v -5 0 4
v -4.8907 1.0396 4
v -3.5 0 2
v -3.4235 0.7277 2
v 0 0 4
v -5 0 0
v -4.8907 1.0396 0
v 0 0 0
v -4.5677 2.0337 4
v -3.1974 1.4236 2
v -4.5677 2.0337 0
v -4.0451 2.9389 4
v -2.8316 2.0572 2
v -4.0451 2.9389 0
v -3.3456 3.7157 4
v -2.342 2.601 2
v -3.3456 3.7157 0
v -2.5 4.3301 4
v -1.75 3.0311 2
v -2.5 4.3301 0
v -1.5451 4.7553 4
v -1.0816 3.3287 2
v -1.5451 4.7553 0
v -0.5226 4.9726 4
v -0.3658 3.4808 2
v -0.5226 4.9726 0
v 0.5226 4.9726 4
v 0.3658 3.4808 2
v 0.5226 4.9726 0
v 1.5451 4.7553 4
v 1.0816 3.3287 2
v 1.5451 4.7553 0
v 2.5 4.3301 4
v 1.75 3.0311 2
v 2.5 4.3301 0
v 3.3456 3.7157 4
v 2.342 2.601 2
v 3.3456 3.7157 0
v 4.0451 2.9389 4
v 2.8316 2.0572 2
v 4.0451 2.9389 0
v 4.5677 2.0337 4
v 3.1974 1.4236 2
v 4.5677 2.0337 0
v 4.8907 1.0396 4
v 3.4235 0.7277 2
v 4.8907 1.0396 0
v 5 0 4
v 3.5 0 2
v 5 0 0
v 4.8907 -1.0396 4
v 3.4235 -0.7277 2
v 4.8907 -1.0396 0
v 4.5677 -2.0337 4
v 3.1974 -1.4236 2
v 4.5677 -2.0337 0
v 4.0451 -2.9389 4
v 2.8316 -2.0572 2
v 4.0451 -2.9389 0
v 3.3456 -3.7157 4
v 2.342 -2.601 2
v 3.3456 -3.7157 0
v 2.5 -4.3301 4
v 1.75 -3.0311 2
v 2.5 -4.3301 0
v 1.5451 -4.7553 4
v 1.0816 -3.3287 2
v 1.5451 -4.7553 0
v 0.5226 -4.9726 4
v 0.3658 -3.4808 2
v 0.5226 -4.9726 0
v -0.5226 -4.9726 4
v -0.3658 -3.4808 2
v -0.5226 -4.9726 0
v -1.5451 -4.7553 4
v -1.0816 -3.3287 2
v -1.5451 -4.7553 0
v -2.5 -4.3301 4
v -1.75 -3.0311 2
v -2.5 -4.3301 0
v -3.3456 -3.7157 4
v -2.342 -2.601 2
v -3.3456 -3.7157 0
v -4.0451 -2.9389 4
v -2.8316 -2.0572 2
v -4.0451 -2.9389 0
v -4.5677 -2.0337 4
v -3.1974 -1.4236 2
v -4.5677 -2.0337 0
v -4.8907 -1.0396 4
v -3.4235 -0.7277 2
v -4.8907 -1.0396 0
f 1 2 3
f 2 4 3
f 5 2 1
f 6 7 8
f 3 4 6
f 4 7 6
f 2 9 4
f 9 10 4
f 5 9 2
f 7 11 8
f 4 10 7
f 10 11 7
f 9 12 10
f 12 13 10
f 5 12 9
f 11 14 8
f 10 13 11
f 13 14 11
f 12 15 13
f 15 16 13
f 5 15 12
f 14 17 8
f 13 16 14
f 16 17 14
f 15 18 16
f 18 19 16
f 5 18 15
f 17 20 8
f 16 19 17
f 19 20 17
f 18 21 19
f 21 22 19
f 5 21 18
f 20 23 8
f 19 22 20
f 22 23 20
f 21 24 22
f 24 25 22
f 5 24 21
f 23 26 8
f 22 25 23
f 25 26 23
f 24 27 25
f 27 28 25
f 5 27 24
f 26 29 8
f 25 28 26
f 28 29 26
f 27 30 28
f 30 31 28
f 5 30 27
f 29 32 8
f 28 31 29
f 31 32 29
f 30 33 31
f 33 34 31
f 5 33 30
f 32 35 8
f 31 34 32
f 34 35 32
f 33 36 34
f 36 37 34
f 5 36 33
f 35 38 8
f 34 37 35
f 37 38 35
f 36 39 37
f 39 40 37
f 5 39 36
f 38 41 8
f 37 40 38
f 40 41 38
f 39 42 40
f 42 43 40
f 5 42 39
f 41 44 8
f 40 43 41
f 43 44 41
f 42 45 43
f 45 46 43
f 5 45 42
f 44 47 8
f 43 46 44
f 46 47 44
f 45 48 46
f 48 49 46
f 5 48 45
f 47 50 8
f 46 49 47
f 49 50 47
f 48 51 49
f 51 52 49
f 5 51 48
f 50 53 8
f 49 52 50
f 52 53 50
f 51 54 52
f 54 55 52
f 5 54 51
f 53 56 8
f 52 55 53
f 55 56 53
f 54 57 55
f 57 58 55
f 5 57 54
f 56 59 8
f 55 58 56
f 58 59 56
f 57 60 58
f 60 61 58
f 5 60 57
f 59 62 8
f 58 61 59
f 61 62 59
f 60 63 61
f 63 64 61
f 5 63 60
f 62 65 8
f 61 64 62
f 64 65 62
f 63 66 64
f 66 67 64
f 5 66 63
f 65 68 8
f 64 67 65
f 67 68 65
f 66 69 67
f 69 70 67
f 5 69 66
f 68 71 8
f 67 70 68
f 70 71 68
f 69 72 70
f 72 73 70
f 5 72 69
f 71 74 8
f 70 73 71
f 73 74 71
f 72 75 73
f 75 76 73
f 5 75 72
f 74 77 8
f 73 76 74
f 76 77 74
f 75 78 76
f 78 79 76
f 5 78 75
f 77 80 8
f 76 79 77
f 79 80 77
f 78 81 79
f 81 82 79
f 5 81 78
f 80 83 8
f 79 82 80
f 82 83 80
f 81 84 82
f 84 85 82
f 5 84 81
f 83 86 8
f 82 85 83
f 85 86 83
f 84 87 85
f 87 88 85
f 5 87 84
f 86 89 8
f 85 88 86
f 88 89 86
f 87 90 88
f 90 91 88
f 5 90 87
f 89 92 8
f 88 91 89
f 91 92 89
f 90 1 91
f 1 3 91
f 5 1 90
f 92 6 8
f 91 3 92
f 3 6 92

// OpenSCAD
or = 5;
ir = 3.5;
h = 4;
$fn = 30;
profile = [[0, 0], [or, 0], [ir, h/2], [or, h], [0, h]];

rotate_extrude(angle=365)polygon(profile);
